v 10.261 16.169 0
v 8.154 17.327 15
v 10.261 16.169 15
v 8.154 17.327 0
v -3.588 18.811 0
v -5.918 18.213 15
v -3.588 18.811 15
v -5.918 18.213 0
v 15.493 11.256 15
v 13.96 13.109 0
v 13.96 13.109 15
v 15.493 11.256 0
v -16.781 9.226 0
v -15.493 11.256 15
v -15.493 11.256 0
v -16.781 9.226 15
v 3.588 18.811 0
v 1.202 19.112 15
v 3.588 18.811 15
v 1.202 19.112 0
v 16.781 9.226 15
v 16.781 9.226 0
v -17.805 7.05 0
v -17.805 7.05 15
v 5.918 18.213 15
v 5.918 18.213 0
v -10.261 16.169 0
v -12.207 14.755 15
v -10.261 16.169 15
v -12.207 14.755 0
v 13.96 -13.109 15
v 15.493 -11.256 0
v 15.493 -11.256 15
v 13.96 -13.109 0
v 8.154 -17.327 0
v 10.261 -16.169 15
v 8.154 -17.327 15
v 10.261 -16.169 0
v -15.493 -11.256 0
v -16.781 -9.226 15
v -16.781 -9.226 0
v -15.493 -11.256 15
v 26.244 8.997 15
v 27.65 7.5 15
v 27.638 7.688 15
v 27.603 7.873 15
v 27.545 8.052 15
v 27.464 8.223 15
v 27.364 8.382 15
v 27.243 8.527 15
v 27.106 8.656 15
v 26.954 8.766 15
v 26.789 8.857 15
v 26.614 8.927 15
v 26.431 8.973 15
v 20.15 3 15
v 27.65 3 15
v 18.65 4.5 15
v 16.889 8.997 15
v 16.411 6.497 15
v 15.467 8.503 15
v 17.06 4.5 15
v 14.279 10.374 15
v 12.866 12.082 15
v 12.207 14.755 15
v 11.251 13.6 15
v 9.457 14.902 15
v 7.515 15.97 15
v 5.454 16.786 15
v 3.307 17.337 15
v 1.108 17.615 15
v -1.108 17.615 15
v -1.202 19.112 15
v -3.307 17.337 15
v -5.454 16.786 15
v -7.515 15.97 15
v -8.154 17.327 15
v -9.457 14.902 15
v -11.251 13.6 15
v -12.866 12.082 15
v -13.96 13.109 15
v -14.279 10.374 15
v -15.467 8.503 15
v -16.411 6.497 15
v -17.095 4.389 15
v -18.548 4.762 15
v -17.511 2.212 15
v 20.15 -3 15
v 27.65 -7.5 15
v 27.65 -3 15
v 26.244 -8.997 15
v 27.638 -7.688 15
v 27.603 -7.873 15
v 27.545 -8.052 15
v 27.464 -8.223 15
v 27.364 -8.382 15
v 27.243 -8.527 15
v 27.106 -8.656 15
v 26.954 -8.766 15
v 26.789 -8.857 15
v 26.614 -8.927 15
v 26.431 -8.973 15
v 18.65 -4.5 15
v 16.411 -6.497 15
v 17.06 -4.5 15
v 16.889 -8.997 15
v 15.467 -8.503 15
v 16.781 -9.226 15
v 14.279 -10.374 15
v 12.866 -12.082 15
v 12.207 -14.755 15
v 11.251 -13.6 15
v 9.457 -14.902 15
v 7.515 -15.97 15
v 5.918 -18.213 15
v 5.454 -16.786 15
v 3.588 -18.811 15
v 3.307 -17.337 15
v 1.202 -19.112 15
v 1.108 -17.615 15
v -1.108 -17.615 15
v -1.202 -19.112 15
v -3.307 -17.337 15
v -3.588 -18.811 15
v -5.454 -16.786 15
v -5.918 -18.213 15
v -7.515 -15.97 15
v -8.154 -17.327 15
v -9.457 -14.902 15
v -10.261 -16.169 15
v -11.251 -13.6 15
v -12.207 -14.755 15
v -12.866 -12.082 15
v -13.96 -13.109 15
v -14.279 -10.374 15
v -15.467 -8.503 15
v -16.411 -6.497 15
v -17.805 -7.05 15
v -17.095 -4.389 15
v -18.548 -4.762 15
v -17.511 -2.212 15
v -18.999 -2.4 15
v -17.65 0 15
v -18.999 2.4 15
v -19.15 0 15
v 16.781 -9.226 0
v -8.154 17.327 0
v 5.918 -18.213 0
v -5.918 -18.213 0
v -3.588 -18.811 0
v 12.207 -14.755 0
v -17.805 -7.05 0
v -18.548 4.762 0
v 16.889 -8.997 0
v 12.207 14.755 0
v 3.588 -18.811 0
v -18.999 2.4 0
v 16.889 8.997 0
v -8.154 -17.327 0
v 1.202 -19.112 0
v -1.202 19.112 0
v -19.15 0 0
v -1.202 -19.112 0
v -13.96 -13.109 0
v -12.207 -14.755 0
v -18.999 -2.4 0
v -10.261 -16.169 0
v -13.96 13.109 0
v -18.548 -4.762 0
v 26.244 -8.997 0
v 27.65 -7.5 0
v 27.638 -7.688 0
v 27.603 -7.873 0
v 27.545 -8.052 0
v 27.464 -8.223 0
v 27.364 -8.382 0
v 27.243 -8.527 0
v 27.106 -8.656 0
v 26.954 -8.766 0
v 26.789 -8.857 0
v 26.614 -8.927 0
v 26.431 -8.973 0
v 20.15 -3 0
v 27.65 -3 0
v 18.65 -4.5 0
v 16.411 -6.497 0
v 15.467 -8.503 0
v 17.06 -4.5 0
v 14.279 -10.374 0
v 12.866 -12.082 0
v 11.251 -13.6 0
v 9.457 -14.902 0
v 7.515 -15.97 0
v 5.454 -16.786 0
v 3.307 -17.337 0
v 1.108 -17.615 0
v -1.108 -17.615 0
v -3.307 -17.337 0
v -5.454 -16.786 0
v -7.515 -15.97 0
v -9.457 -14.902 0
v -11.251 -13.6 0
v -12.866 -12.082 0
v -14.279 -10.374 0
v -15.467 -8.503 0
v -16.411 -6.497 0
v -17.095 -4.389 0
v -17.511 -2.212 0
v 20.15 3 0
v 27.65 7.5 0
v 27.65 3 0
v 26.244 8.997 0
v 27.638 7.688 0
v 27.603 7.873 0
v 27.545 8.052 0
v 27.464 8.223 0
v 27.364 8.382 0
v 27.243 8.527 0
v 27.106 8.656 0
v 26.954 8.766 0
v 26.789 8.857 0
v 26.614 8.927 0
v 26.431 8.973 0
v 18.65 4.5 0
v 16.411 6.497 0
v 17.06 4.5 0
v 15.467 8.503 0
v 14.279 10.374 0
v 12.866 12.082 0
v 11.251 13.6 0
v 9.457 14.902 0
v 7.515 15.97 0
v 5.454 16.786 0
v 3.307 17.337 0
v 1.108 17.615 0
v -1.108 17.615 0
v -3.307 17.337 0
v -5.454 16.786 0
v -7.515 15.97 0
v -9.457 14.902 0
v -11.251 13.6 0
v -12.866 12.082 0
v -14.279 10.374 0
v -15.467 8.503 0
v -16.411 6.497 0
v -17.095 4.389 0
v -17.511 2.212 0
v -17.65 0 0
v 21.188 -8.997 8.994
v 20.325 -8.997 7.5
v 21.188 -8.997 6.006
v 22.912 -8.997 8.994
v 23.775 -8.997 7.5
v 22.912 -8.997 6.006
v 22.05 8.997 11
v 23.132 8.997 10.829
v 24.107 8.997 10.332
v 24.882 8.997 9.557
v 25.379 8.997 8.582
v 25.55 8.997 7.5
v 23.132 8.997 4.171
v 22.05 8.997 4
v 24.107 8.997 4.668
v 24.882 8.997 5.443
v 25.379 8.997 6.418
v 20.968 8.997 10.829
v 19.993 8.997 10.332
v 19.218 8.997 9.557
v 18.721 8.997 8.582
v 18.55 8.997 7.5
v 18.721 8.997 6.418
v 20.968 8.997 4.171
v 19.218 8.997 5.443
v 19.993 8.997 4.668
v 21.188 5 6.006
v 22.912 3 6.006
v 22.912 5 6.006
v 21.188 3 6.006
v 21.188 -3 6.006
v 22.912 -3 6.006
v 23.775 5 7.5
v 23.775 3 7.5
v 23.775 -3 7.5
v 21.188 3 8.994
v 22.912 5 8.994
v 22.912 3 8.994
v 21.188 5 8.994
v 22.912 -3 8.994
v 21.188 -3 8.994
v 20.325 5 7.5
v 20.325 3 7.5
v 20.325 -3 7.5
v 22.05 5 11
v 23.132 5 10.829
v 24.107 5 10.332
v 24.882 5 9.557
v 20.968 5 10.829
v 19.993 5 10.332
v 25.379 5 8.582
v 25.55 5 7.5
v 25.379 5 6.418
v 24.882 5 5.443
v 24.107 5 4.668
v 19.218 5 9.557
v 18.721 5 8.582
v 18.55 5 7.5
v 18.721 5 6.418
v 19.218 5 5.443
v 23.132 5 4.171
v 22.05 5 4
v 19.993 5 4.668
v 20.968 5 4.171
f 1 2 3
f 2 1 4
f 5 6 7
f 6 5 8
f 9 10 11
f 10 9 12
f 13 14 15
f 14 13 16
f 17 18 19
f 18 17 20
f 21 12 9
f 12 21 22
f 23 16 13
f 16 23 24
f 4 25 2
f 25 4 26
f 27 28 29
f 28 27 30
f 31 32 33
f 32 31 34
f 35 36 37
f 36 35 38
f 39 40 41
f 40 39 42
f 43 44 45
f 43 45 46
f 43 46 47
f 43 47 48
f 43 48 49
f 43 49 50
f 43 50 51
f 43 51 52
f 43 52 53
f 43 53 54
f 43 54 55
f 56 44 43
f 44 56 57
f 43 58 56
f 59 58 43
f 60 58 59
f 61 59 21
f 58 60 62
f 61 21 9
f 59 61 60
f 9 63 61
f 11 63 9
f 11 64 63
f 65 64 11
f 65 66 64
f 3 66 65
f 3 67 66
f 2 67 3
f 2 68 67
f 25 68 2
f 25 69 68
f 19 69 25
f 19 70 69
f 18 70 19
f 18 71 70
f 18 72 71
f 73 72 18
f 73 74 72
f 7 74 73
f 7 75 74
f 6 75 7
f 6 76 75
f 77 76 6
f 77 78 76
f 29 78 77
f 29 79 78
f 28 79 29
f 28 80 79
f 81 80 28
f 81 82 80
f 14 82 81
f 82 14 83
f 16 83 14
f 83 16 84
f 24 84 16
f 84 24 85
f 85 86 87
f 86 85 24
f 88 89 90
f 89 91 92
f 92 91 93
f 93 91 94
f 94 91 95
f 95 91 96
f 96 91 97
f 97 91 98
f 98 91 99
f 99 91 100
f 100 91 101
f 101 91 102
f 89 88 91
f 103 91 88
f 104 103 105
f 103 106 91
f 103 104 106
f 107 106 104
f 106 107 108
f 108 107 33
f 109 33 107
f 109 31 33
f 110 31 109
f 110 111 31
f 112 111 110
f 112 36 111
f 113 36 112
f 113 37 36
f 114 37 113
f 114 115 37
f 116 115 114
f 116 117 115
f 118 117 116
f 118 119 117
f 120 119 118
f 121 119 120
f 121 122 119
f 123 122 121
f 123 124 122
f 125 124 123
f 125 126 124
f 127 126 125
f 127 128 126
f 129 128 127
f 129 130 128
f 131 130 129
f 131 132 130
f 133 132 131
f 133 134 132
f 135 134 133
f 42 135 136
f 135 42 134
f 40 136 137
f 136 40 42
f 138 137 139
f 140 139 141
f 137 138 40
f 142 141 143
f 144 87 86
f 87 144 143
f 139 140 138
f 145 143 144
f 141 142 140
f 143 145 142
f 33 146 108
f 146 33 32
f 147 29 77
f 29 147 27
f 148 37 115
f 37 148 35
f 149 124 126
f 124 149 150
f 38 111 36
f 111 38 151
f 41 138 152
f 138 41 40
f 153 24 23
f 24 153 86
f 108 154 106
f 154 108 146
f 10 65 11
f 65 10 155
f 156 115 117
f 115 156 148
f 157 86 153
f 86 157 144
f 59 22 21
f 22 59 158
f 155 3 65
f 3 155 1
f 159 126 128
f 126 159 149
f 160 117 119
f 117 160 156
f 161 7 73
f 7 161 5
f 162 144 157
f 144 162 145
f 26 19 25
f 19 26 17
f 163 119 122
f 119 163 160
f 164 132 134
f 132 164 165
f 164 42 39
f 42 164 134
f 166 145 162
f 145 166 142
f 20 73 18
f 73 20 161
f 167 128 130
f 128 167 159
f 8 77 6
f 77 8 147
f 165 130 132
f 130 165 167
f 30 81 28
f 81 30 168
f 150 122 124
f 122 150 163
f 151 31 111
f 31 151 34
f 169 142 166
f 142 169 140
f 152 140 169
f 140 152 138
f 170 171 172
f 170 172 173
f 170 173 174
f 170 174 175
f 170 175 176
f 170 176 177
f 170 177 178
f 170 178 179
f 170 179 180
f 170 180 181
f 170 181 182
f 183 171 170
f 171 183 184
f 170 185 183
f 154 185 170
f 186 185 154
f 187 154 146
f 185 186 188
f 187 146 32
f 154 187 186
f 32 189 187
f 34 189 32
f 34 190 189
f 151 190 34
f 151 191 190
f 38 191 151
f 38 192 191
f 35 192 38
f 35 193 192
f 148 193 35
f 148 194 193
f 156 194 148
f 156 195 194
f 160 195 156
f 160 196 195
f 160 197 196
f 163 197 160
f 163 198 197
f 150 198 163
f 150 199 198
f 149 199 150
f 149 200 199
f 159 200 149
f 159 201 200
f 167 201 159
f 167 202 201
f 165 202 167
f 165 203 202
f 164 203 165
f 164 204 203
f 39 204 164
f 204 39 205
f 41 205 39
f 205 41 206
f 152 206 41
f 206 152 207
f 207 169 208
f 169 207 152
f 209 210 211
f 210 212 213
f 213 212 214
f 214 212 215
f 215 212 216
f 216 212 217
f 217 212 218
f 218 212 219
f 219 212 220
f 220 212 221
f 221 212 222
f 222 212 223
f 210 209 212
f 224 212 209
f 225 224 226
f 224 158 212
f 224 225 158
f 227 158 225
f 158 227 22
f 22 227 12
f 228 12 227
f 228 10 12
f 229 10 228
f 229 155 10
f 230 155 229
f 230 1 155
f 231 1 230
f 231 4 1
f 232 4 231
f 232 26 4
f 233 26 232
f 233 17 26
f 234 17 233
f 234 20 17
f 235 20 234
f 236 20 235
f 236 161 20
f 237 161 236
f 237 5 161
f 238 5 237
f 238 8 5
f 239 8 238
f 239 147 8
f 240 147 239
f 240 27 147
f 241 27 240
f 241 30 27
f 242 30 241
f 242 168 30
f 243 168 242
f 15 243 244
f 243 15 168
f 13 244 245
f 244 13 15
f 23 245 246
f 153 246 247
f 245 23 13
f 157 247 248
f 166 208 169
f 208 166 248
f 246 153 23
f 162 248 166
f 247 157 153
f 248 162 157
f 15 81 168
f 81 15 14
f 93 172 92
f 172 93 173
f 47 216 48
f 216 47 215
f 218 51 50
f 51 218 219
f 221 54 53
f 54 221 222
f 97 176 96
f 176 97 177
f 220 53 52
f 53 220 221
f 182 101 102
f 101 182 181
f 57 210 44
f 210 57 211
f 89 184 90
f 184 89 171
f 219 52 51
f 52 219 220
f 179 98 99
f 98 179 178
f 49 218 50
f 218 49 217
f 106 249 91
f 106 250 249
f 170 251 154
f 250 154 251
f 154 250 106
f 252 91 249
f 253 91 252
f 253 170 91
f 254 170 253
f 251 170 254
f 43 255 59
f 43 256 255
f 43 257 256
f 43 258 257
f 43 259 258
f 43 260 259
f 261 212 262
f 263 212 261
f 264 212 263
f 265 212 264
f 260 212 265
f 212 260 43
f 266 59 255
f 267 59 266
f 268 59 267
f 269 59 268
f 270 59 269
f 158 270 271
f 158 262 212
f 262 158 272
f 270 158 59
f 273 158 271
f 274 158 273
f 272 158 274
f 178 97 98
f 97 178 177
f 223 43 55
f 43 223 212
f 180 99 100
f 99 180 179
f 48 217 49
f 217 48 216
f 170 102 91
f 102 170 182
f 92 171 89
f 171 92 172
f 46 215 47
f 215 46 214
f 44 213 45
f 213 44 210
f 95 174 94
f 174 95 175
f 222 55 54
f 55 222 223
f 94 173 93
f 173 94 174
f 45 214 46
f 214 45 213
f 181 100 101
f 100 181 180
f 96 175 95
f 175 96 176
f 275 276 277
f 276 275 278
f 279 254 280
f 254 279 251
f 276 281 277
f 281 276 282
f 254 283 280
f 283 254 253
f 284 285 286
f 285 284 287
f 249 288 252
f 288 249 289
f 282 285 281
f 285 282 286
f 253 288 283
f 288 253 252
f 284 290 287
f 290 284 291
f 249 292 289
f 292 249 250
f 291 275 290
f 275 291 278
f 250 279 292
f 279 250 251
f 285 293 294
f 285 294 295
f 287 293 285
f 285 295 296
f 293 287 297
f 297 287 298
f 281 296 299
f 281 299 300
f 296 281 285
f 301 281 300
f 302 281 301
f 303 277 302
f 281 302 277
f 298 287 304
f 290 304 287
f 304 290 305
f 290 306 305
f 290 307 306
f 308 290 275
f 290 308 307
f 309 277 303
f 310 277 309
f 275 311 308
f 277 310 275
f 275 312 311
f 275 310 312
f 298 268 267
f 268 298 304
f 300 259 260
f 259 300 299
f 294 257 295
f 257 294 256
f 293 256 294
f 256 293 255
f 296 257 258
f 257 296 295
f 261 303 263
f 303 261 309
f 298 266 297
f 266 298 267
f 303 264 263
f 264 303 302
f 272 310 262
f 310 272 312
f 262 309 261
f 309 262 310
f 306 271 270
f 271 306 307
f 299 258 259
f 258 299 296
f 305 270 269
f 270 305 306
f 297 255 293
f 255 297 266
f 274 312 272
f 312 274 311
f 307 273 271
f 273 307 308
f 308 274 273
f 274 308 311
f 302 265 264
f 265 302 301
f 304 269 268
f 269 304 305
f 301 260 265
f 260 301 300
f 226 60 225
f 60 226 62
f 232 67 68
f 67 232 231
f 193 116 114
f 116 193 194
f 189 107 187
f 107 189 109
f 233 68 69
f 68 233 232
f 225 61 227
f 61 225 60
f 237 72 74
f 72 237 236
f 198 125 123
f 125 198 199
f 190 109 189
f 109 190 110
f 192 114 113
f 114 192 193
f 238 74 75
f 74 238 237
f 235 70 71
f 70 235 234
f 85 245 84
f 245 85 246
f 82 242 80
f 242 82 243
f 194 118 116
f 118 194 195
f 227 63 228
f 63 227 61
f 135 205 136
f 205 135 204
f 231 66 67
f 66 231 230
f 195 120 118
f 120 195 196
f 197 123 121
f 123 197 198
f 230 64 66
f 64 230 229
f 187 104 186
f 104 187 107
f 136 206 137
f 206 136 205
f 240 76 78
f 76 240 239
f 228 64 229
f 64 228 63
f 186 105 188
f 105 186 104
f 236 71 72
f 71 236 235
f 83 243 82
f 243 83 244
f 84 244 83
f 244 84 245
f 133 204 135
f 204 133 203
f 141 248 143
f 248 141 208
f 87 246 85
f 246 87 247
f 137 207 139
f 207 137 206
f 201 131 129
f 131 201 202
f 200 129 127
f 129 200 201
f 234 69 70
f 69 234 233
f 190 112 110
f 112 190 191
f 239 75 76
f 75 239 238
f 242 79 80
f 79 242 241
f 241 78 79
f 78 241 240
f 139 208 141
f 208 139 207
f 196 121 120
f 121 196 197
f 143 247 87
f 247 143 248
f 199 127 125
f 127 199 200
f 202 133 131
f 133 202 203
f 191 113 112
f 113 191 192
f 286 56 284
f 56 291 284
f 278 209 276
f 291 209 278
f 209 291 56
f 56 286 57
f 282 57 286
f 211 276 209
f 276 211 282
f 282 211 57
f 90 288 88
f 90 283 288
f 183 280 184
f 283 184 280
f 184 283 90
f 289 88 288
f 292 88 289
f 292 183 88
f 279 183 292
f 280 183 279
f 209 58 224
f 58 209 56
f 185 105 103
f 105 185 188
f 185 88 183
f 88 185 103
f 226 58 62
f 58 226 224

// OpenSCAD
d = 35.3;
h = 15;

lg = 100;
gt = 6; // gap thickness
edr = 10; // ear delta radius
et = 18; // ear thichness total


module screw_hole(dl, ds) {
    large = 100;
    cylinder(h=large, d=ds, $fn=6);
    mirror([0,0,1]) cylinder(h=large, d=dl, $fn=20);
}


difference() {
    $fn = 50;
    union() {
        cylinder(d=d+3, h=h);
        fr = 1.5; // fillet radius
        translate([0,-et/2+fr,0])minkowski() {
            cube([d/2+edr-fr,et-2*fr,h-1]);
            cylinder(d=fr*2, h=1);
        }
    }
    // remove pipe
    cylinder(d=d, h=h);
    
    // remove ear gap
    translate([0,-gt/2,0]) cube([lg,gt,h]);
    
    // remove shelf aligner
    ndt = 1.5; // aligner norch delta thickness
    ndr = 1; // aligner norch delta radius
    nir = 1.5; // aligner norch increment radius
    #linear_extrude(h) polygon([
        [0, gt/2+ndt], 
            [d/2+ndr, gt/2+ndt], 
                [d/2+ndr+nir, gt/2], 
                [d/2+ndr+nir, -gt/2], 
            [d/2+ndr, -gt/2-ndt], 
        [0, -gt/2-ndt], 
    ]);
    
    // remove screw holes
    for(h=[
        h/2,
        //8,h-8
    ]){
        translate([d/2+edr/2-0.6,gt/2+2,h]) rotate([90,0,0]) 
            screw_hole(dl=7, ds=3.45);
    }
    
}
